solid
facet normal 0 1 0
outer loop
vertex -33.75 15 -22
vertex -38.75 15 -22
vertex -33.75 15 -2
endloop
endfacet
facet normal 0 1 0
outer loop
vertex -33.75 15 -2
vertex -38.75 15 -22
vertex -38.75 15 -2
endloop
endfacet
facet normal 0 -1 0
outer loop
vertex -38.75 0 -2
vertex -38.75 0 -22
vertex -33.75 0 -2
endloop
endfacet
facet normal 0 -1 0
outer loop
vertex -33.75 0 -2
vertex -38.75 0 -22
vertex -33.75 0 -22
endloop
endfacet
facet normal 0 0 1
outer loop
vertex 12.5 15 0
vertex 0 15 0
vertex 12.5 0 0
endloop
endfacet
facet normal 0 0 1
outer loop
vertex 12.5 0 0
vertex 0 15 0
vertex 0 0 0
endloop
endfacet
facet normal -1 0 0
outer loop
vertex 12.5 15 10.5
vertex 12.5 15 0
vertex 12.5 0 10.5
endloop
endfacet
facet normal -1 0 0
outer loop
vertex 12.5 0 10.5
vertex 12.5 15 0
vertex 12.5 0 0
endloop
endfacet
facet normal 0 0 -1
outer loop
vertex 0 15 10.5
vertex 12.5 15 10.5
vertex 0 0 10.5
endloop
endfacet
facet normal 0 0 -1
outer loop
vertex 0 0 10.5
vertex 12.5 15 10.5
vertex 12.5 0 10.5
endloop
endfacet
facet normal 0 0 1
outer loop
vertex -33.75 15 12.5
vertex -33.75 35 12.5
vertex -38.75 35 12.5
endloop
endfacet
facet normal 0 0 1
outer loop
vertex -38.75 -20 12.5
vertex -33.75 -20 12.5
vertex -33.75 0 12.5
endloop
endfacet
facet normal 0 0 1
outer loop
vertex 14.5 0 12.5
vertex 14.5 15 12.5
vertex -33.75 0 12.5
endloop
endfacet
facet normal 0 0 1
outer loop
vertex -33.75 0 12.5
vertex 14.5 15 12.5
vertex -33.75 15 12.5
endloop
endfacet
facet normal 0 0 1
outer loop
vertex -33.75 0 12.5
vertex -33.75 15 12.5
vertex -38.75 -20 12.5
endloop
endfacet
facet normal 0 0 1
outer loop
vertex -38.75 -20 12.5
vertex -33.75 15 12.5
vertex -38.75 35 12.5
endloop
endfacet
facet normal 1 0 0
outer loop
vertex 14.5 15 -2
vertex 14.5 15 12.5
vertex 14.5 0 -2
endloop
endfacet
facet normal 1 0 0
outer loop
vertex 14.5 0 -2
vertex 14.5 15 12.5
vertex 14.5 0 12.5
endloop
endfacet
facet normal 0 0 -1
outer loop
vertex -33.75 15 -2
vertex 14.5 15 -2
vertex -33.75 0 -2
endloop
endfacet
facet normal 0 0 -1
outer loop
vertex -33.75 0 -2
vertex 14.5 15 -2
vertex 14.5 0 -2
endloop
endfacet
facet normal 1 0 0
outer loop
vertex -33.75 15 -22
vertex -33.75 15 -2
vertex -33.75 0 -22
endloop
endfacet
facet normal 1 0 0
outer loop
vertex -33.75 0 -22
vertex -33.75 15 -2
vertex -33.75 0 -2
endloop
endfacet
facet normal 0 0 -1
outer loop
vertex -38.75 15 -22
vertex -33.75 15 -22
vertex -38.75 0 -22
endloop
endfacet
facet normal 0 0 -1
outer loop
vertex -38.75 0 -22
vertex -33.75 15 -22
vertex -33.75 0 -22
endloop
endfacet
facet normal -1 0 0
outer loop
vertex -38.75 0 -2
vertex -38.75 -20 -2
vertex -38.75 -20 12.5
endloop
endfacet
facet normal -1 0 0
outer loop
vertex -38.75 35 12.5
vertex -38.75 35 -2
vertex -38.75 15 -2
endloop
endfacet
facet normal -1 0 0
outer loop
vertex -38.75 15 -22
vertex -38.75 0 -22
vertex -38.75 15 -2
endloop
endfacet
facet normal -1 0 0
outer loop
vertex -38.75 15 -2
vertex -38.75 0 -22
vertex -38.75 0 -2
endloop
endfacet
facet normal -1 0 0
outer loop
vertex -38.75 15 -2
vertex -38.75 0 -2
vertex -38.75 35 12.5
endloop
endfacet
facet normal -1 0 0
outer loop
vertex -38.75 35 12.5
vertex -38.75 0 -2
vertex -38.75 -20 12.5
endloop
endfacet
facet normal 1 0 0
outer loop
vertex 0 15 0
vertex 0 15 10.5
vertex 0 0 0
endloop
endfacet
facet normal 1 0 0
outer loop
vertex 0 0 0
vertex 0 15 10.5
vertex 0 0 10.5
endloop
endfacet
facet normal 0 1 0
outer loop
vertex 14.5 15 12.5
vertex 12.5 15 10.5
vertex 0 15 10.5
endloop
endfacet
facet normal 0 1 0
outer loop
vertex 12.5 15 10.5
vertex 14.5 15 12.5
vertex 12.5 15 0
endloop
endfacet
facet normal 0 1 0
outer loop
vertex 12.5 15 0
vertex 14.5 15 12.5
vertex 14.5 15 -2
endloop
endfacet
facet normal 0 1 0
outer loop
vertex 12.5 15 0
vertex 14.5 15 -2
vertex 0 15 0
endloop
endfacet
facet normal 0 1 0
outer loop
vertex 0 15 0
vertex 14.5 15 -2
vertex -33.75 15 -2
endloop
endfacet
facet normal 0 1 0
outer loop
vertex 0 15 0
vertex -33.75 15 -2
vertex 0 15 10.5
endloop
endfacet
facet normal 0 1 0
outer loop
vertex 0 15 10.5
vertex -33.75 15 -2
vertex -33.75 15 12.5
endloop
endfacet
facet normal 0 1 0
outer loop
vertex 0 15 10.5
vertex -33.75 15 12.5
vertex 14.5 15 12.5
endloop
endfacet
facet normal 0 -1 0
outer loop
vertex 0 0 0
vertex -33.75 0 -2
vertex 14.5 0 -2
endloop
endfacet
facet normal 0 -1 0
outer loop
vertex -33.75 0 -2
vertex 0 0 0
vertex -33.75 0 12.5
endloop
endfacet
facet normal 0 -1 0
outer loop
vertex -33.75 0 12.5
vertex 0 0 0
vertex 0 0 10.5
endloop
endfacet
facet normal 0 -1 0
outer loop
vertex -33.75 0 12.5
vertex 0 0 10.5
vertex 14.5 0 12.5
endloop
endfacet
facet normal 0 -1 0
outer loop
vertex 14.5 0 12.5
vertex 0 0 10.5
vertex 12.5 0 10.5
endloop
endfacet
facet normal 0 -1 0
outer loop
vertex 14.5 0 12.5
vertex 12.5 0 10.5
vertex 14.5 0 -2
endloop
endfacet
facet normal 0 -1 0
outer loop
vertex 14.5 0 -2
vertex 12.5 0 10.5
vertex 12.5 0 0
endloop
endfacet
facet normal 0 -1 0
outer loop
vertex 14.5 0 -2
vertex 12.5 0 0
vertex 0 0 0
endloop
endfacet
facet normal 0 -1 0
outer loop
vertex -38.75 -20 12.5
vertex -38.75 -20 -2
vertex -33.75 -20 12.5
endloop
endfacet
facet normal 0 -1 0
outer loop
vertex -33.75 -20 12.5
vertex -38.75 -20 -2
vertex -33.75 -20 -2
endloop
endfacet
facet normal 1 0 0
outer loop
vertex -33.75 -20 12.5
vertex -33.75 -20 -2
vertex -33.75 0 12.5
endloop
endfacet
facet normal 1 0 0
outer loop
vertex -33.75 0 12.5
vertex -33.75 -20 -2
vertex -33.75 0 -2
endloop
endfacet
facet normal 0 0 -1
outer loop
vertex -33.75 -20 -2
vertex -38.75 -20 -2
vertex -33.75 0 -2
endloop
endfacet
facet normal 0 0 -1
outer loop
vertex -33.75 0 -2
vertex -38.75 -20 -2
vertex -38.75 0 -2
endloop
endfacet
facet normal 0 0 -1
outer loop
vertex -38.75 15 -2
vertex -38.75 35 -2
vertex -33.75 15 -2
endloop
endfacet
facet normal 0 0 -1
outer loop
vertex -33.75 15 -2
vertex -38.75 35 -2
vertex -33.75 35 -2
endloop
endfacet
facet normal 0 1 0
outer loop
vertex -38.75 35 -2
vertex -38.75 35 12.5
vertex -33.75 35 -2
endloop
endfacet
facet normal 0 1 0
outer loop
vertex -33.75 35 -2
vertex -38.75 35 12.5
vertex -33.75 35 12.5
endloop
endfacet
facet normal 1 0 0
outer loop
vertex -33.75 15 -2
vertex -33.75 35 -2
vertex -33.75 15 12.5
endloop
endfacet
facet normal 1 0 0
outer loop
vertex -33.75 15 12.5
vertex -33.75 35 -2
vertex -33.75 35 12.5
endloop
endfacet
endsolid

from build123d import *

# Parameters (mm, degrees)
SKETCH1_W           = 12.5
SKETCH1_H           = 10.5
BOSS_EXTRUDE2_DEPTH = 15
BOSS_EXTRUDE3_DEPTH = 5


with BuildPart() as part:
    # Sketch1 → Boss-Extrude2 (new body)
    with BuildSketch(Plane(origin=(0, 0, 0), x_dir=(1, 0, 0), z_dir=(0, 1, 0))):
        Polygon((-36.75, -12.5), (-2, -12.5), (14.5, -12.5), (14.5, 2), (-2, 2), (-33.75, 2), (-33.75, 22), (-38.75, 22), (-38.75, -12.5), align=None)
        with Locations((6.25, -5.25)):
            Rectangle(SKETCH1_W, SKETCH1_H, mode=Mode.SUBTRACT)
    extrude(amount=BOSS_EXTRUDE2_DEPTH)

    # Sketch3 → Boss-Extrude3 (add)
    with BuildSketch(Plane(origin=(-33.75, 0, 0), x_dir=(0, 0, -1), z_dir=(1, 0, 0))):
        Polygon((2, 15), (2, 35), (-12.5, 35), (-12.5, -20), (2, -20), align=None)
    extrude(amount=-BOSS_EXTRUDE3_DEPTH)


solid = part.part
